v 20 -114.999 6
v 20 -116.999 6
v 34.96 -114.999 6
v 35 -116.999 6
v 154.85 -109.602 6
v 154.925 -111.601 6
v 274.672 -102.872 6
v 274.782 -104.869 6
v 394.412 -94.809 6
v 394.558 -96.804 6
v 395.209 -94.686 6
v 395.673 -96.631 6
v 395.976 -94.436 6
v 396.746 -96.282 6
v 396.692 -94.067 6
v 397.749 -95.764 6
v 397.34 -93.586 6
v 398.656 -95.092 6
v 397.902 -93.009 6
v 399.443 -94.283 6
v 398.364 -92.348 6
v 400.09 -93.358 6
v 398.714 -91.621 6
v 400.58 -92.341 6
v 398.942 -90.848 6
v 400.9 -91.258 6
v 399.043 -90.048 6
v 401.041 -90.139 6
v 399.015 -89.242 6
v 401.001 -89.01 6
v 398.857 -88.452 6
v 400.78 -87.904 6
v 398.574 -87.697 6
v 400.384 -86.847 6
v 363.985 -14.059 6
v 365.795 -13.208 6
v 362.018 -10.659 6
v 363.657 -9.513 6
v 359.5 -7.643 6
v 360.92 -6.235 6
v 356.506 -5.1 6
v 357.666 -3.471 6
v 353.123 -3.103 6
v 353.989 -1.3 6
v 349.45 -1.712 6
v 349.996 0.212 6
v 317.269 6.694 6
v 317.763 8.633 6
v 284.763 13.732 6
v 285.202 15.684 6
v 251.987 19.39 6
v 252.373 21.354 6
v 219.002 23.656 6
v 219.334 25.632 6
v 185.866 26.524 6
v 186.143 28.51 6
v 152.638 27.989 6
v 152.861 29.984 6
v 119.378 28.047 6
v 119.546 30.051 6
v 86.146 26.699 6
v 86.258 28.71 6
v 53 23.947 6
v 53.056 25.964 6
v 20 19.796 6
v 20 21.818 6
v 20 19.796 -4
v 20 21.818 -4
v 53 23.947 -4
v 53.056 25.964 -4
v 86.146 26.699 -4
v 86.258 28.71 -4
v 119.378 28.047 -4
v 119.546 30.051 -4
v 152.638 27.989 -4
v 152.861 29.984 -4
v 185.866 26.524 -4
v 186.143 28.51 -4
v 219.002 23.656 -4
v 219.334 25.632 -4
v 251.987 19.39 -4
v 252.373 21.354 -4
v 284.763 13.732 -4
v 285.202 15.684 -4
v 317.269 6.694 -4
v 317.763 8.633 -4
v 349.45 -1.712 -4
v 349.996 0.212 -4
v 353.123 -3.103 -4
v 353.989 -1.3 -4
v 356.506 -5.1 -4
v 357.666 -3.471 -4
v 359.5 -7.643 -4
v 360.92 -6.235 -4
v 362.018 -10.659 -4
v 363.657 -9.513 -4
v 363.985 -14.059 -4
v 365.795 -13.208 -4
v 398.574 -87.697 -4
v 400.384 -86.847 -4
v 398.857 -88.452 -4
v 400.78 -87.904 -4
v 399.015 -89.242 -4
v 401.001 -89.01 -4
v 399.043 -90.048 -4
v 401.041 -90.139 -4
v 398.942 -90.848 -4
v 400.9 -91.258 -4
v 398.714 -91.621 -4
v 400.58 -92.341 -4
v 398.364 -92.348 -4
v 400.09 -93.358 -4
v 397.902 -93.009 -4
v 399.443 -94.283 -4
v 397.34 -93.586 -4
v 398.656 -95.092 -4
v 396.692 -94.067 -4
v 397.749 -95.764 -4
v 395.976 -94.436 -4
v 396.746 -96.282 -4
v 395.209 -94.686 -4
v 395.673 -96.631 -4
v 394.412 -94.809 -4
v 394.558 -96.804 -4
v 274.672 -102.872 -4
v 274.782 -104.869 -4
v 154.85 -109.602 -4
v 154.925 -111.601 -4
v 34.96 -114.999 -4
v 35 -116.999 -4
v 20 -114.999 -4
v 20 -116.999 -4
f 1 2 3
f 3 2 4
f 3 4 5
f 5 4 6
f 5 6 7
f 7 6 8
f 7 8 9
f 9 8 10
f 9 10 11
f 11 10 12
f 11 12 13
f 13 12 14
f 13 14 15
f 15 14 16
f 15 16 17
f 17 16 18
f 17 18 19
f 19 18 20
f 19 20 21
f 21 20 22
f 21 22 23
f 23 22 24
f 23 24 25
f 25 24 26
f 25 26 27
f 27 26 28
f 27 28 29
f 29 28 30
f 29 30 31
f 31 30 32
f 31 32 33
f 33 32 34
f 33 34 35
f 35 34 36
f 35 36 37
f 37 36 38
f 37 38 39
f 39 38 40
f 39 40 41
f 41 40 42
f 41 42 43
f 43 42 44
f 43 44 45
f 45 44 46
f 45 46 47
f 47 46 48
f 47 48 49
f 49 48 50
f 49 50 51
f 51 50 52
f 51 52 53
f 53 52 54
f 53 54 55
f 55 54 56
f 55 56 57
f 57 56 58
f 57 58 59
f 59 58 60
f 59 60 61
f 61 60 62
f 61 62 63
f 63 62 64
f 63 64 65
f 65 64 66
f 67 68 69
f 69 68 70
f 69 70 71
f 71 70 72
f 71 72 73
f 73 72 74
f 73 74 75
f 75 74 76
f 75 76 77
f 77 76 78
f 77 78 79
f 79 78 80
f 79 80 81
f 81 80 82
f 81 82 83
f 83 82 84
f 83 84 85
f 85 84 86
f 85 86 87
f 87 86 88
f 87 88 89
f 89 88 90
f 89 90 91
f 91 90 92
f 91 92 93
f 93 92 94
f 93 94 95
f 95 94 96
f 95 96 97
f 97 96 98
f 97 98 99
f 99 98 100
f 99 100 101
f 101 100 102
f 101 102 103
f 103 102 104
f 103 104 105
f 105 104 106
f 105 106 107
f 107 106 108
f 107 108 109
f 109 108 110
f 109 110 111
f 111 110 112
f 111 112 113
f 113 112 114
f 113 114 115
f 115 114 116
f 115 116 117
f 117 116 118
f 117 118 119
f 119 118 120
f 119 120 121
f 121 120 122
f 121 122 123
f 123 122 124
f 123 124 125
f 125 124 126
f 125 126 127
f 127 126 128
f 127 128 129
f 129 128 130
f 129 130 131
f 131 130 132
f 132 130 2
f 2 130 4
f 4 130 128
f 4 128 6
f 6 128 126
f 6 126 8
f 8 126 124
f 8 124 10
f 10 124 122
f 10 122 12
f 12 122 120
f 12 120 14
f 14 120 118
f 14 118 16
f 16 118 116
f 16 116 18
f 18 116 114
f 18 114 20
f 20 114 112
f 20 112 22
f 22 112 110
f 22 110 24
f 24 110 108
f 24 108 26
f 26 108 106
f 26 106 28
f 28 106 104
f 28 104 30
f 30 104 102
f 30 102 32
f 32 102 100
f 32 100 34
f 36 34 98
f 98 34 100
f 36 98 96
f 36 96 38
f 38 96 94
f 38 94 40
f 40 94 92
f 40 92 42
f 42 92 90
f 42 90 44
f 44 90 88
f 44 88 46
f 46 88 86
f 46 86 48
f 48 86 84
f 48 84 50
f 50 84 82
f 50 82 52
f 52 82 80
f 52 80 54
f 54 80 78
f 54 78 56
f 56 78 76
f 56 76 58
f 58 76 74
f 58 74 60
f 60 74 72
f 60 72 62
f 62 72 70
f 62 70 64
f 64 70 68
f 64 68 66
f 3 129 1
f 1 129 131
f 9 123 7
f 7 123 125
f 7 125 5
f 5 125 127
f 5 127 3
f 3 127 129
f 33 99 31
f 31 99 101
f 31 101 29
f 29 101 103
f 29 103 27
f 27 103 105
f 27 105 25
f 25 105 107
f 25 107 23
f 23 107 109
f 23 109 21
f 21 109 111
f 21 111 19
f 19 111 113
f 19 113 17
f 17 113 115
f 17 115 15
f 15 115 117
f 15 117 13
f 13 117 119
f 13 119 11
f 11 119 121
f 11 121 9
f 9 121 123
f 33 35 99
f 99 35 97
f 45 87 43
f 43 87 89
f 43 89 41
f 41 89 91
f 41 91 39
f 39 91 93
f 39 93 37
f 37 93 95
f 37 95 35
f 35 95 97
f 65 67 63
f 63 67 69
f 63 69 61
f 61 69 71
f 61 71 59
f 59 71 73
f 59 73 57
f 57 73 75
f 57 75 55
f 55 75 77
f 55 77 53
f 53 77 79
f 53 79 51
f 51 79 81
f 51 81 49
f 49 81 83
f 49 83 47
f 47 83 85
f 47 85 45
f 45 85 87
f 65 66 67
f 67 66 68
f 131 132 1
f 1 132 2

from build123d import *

# Parameters (mm, degrees)
BOSS_EXTRUDE1_DEPTH = 10
SKETCH3_W           = 208.746083537
SKETCH3_H           = 274.535725978
CUT_EXTRUDE1_DEPTH  = 399.651564654


with BuildPart() as part:
    # Sketch2 → Boss-Extrude1 (new body)
    with BuildSketch(Plane.XY.offset(-4)):
        with BuildLine():
            Line((-300, 17.25), (-9.906933746, 17.25))
            ThreePointArc((-9.906933746, 17.25), (-7.67705834, 17.349645471), (-5.464958693, 17.647787546))
            ThreePointArc((-5.464958693, 17.647787546), (173.262167791, 29.246699007), (349.996014284, 0.211065854))
            ThreePointArc((349.996014284, 0.211065854), (359.352395656, -4.784442191), (365.795573071, -13.209549776))
            Line((365.795573071, -13.209549776), (400.384507401, -86.847766013))
            ThreePointArc((400.384507401, -86.847766013), (400.778842945, -87.899120346), (401, -89))
            ThreePointArc((401, -89), (399.447287587, -94.279668904), (394.557793346, -96.805270939))
            ThreePointArc((394.557793346, -96.805270939), (214.863177419, -108.403215094), (35, -117))
            Line((35, -117), (-30.25, -117))
            Line((-30.25, -117), (-293.242078622, -117))
            ThreePointArc((-293.242078622, -117), (-293.197036902, -109.999972274), (-293.25, -103))
            ThreePointArc((-293.25, -103), (-297.900702689, -41.860509444), (-310, 18.25))
            ThreePointArc((-310, 18.25), (-305.024937811, 17.500621894), (-300, 17.25))
        make_face()
        with BuildLine():
            Line((-300, 15.25), (-9.906933746, 15.25))
            ThreePointArc((-9.906933746, 15.25), (-7.498668308, 15.357617109), (-5.109600689, 15.67961055))
            ThreePointArc((-5.109600689, 15.67961055), (173.164177958, 27.249100951), (349.449732641, -1.712882265))
            ThreePointArc((349.449732641, -1.712882265), (358.057603503, -6.308749667), (363.985326724, -14.059848645))
            Line((363.985326724, -14.059848645), (398.574261055, -87.698064882))
            ThreePointArc((398.574261055, -87.698064882), (398.855929301, -88.449032263), (399.013898626, -89.235374873))
            ThreePointArc((399.013898626, -89.235374873), (397.904818331, -93.006566947), (394.412322444, -94.8105684))
            ThreePointArc((394.412322444, -94.8105684), (214.770700526, -106.405257008), (34.960579781, -115))
            Line((34.960579781, -115), (-30.25, -115))
            Line((-30.25, -115), (-291.219119939, -115))
            ThreePointArc((-291.219119939, -115), (-291.198633765, -108.985341109), (-291.250212173, -102.970868486))
            ThreePointArc((-291.250212173, -102.970868486), (-295.709152828, -43.127202467), (-307.277212671, 15.756806448))
            ThreePointArc((-307.277212671, 15.756806448), (-303.647419534, 15.376854871), (-300, 15.25))
        make_face(mode=Mode.SUBTRACT)
    extrude(amount=BOSS_EXTRUDE1_DEPTH)

    # Sketch3 → Cut-Extrude1 (cut, through all)
    with BuildSketch(Plane(origin=(20, 0, 0), x_dir=(0, 0, -1), z_dir=(1, 0, 0))):
        with Locations((3.946589657, -49.091759287)):
            Rectangle(SKETCH3_W, SKETCH3_H)
    extrude(amount=-CUT_EXTRUDE1_DEPTH, mode=Mode.SUBTRACT)


solid = part.part
